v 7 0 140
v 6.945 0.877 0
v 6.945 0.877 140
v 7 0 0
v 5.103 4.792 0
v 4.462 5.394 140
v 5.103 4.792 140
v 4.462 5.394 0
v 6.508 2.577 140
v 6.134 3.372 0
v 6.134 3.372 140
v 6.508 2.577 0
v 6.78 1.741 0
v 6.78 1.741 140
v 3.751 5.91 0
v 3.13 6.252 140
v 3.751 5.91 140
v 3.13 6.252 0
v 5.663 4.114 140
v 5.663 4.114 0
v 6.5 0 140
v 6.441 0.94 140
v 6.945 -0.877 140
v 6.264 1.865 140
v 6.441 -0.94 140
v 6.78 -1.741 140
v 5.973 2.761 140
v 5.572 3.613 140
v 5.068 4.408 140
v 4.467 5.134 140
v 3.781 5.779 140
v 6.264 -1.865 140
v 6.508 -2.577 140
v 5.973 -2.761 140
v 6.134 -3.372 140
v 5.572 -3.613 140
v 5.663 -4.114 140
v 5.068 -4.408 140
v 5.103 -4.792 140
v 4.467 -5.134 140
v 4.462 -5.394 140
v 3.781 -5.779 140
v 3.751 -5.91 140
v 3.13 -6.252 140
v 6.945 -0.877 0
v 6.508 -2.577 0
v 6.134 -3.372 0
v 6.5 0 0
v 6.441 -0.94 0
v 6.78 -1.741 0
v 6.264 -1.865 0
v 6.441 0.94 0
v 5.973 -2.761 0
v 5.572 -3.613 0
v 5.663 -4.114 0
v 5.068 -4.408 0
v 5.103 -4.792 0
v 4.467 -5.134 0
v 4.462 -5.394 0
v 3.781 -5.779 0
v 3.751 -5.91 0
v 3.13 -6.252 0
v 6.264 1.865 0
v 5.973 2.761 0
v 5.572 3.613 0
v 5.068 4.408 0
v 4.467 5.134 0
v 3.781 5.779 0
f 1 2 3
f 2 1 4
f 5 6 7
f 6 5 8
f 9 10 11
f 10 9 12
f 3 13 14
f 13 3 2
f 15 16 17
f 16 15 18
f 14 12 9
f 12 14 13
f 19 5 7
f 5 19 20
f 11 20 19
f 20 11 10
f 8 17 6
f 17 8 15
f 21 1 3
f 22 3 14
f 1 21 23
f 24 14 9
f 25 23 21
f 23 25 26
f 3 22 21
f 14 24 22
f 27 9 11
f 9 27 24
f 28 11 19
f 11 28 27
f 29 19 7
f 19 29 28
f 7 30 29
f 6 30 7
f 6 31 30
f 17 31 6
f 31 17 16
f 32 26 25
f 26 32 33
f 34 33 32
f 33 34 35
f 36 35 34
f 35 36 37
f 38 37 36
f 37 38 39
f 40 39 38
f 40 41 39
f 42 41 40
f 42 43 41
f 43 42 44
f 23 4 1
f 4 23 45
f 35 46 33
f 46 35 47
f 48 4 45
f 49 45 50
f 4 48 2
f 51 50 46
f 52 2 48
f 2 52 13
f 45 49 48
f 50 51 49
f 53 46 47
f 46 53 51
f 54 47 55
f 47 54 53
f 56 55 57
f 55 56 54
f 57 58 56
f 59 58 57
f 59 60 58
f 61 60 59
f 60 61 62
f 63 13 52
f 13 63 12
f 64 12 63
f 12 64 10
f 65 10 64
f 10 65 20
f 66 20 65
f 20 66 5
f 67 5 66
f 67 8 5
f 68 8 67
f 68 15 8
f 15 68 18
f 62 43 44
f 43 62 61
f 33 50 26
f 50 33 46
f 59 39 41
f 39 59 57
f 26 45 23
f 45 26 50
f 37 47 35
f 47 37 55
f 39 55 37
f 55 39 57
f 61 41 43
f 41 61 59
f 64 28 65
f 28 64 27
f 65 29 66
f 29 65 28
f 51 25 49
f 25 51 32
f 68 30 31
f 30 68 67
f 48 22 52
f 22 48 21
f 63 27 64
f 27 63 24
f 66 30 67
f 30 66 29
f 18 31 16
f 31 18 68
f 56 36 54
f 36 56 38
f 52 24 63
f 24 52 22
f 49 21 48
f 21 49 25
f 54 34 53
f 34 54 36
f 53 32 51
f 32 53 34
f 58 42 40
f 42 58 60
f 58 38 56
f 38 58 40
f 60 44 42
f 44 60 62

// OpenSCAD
$fn = 50;


difference() {
	union() {
		cylinder(h = 140, r = 7.0000000000);
		translate(v = [-4.0000000000, 0, 0]) {
			cylinder(h = 140, r = 7.0000000000);
		}
	}
	union() {
		cylinder(h = 140, r = 3.2500000000);
		cylinder(h = 140, r = 1.8000000000);
		cylinder(h = 140, r = 1.8000000000);
		cylinder(h = 140, r = 1.8000000000);
		translate(v = [-8.5000000000, 0, 0]) {
			hull() {
				translate(v = [-3.7500000000, 0.0000000000, 0]) {
					cylinder(h = 140, r = 7.5000000000);
				}
				translate(v = [3.7500000000, 0.0000000000, 0]) {
					cylinder(h = 140, r = 7.5000000000);
				}
				translate(v = [-3.7500000000, -0.0000000000, 0]) {
					cylinder(h = 140, r = 7.5000000000);
				}
				translate(v = [3.7500000000, -0.0000000000, 0]) {
					cylinder(h = 140, r = 7.5000000000);
				}
			}
		}
		translate(v = [-1.0000000000, 0, 0.0000000000]) {
			cylinder(h = 140, r = 7.5000000000);
		}
	}
}
